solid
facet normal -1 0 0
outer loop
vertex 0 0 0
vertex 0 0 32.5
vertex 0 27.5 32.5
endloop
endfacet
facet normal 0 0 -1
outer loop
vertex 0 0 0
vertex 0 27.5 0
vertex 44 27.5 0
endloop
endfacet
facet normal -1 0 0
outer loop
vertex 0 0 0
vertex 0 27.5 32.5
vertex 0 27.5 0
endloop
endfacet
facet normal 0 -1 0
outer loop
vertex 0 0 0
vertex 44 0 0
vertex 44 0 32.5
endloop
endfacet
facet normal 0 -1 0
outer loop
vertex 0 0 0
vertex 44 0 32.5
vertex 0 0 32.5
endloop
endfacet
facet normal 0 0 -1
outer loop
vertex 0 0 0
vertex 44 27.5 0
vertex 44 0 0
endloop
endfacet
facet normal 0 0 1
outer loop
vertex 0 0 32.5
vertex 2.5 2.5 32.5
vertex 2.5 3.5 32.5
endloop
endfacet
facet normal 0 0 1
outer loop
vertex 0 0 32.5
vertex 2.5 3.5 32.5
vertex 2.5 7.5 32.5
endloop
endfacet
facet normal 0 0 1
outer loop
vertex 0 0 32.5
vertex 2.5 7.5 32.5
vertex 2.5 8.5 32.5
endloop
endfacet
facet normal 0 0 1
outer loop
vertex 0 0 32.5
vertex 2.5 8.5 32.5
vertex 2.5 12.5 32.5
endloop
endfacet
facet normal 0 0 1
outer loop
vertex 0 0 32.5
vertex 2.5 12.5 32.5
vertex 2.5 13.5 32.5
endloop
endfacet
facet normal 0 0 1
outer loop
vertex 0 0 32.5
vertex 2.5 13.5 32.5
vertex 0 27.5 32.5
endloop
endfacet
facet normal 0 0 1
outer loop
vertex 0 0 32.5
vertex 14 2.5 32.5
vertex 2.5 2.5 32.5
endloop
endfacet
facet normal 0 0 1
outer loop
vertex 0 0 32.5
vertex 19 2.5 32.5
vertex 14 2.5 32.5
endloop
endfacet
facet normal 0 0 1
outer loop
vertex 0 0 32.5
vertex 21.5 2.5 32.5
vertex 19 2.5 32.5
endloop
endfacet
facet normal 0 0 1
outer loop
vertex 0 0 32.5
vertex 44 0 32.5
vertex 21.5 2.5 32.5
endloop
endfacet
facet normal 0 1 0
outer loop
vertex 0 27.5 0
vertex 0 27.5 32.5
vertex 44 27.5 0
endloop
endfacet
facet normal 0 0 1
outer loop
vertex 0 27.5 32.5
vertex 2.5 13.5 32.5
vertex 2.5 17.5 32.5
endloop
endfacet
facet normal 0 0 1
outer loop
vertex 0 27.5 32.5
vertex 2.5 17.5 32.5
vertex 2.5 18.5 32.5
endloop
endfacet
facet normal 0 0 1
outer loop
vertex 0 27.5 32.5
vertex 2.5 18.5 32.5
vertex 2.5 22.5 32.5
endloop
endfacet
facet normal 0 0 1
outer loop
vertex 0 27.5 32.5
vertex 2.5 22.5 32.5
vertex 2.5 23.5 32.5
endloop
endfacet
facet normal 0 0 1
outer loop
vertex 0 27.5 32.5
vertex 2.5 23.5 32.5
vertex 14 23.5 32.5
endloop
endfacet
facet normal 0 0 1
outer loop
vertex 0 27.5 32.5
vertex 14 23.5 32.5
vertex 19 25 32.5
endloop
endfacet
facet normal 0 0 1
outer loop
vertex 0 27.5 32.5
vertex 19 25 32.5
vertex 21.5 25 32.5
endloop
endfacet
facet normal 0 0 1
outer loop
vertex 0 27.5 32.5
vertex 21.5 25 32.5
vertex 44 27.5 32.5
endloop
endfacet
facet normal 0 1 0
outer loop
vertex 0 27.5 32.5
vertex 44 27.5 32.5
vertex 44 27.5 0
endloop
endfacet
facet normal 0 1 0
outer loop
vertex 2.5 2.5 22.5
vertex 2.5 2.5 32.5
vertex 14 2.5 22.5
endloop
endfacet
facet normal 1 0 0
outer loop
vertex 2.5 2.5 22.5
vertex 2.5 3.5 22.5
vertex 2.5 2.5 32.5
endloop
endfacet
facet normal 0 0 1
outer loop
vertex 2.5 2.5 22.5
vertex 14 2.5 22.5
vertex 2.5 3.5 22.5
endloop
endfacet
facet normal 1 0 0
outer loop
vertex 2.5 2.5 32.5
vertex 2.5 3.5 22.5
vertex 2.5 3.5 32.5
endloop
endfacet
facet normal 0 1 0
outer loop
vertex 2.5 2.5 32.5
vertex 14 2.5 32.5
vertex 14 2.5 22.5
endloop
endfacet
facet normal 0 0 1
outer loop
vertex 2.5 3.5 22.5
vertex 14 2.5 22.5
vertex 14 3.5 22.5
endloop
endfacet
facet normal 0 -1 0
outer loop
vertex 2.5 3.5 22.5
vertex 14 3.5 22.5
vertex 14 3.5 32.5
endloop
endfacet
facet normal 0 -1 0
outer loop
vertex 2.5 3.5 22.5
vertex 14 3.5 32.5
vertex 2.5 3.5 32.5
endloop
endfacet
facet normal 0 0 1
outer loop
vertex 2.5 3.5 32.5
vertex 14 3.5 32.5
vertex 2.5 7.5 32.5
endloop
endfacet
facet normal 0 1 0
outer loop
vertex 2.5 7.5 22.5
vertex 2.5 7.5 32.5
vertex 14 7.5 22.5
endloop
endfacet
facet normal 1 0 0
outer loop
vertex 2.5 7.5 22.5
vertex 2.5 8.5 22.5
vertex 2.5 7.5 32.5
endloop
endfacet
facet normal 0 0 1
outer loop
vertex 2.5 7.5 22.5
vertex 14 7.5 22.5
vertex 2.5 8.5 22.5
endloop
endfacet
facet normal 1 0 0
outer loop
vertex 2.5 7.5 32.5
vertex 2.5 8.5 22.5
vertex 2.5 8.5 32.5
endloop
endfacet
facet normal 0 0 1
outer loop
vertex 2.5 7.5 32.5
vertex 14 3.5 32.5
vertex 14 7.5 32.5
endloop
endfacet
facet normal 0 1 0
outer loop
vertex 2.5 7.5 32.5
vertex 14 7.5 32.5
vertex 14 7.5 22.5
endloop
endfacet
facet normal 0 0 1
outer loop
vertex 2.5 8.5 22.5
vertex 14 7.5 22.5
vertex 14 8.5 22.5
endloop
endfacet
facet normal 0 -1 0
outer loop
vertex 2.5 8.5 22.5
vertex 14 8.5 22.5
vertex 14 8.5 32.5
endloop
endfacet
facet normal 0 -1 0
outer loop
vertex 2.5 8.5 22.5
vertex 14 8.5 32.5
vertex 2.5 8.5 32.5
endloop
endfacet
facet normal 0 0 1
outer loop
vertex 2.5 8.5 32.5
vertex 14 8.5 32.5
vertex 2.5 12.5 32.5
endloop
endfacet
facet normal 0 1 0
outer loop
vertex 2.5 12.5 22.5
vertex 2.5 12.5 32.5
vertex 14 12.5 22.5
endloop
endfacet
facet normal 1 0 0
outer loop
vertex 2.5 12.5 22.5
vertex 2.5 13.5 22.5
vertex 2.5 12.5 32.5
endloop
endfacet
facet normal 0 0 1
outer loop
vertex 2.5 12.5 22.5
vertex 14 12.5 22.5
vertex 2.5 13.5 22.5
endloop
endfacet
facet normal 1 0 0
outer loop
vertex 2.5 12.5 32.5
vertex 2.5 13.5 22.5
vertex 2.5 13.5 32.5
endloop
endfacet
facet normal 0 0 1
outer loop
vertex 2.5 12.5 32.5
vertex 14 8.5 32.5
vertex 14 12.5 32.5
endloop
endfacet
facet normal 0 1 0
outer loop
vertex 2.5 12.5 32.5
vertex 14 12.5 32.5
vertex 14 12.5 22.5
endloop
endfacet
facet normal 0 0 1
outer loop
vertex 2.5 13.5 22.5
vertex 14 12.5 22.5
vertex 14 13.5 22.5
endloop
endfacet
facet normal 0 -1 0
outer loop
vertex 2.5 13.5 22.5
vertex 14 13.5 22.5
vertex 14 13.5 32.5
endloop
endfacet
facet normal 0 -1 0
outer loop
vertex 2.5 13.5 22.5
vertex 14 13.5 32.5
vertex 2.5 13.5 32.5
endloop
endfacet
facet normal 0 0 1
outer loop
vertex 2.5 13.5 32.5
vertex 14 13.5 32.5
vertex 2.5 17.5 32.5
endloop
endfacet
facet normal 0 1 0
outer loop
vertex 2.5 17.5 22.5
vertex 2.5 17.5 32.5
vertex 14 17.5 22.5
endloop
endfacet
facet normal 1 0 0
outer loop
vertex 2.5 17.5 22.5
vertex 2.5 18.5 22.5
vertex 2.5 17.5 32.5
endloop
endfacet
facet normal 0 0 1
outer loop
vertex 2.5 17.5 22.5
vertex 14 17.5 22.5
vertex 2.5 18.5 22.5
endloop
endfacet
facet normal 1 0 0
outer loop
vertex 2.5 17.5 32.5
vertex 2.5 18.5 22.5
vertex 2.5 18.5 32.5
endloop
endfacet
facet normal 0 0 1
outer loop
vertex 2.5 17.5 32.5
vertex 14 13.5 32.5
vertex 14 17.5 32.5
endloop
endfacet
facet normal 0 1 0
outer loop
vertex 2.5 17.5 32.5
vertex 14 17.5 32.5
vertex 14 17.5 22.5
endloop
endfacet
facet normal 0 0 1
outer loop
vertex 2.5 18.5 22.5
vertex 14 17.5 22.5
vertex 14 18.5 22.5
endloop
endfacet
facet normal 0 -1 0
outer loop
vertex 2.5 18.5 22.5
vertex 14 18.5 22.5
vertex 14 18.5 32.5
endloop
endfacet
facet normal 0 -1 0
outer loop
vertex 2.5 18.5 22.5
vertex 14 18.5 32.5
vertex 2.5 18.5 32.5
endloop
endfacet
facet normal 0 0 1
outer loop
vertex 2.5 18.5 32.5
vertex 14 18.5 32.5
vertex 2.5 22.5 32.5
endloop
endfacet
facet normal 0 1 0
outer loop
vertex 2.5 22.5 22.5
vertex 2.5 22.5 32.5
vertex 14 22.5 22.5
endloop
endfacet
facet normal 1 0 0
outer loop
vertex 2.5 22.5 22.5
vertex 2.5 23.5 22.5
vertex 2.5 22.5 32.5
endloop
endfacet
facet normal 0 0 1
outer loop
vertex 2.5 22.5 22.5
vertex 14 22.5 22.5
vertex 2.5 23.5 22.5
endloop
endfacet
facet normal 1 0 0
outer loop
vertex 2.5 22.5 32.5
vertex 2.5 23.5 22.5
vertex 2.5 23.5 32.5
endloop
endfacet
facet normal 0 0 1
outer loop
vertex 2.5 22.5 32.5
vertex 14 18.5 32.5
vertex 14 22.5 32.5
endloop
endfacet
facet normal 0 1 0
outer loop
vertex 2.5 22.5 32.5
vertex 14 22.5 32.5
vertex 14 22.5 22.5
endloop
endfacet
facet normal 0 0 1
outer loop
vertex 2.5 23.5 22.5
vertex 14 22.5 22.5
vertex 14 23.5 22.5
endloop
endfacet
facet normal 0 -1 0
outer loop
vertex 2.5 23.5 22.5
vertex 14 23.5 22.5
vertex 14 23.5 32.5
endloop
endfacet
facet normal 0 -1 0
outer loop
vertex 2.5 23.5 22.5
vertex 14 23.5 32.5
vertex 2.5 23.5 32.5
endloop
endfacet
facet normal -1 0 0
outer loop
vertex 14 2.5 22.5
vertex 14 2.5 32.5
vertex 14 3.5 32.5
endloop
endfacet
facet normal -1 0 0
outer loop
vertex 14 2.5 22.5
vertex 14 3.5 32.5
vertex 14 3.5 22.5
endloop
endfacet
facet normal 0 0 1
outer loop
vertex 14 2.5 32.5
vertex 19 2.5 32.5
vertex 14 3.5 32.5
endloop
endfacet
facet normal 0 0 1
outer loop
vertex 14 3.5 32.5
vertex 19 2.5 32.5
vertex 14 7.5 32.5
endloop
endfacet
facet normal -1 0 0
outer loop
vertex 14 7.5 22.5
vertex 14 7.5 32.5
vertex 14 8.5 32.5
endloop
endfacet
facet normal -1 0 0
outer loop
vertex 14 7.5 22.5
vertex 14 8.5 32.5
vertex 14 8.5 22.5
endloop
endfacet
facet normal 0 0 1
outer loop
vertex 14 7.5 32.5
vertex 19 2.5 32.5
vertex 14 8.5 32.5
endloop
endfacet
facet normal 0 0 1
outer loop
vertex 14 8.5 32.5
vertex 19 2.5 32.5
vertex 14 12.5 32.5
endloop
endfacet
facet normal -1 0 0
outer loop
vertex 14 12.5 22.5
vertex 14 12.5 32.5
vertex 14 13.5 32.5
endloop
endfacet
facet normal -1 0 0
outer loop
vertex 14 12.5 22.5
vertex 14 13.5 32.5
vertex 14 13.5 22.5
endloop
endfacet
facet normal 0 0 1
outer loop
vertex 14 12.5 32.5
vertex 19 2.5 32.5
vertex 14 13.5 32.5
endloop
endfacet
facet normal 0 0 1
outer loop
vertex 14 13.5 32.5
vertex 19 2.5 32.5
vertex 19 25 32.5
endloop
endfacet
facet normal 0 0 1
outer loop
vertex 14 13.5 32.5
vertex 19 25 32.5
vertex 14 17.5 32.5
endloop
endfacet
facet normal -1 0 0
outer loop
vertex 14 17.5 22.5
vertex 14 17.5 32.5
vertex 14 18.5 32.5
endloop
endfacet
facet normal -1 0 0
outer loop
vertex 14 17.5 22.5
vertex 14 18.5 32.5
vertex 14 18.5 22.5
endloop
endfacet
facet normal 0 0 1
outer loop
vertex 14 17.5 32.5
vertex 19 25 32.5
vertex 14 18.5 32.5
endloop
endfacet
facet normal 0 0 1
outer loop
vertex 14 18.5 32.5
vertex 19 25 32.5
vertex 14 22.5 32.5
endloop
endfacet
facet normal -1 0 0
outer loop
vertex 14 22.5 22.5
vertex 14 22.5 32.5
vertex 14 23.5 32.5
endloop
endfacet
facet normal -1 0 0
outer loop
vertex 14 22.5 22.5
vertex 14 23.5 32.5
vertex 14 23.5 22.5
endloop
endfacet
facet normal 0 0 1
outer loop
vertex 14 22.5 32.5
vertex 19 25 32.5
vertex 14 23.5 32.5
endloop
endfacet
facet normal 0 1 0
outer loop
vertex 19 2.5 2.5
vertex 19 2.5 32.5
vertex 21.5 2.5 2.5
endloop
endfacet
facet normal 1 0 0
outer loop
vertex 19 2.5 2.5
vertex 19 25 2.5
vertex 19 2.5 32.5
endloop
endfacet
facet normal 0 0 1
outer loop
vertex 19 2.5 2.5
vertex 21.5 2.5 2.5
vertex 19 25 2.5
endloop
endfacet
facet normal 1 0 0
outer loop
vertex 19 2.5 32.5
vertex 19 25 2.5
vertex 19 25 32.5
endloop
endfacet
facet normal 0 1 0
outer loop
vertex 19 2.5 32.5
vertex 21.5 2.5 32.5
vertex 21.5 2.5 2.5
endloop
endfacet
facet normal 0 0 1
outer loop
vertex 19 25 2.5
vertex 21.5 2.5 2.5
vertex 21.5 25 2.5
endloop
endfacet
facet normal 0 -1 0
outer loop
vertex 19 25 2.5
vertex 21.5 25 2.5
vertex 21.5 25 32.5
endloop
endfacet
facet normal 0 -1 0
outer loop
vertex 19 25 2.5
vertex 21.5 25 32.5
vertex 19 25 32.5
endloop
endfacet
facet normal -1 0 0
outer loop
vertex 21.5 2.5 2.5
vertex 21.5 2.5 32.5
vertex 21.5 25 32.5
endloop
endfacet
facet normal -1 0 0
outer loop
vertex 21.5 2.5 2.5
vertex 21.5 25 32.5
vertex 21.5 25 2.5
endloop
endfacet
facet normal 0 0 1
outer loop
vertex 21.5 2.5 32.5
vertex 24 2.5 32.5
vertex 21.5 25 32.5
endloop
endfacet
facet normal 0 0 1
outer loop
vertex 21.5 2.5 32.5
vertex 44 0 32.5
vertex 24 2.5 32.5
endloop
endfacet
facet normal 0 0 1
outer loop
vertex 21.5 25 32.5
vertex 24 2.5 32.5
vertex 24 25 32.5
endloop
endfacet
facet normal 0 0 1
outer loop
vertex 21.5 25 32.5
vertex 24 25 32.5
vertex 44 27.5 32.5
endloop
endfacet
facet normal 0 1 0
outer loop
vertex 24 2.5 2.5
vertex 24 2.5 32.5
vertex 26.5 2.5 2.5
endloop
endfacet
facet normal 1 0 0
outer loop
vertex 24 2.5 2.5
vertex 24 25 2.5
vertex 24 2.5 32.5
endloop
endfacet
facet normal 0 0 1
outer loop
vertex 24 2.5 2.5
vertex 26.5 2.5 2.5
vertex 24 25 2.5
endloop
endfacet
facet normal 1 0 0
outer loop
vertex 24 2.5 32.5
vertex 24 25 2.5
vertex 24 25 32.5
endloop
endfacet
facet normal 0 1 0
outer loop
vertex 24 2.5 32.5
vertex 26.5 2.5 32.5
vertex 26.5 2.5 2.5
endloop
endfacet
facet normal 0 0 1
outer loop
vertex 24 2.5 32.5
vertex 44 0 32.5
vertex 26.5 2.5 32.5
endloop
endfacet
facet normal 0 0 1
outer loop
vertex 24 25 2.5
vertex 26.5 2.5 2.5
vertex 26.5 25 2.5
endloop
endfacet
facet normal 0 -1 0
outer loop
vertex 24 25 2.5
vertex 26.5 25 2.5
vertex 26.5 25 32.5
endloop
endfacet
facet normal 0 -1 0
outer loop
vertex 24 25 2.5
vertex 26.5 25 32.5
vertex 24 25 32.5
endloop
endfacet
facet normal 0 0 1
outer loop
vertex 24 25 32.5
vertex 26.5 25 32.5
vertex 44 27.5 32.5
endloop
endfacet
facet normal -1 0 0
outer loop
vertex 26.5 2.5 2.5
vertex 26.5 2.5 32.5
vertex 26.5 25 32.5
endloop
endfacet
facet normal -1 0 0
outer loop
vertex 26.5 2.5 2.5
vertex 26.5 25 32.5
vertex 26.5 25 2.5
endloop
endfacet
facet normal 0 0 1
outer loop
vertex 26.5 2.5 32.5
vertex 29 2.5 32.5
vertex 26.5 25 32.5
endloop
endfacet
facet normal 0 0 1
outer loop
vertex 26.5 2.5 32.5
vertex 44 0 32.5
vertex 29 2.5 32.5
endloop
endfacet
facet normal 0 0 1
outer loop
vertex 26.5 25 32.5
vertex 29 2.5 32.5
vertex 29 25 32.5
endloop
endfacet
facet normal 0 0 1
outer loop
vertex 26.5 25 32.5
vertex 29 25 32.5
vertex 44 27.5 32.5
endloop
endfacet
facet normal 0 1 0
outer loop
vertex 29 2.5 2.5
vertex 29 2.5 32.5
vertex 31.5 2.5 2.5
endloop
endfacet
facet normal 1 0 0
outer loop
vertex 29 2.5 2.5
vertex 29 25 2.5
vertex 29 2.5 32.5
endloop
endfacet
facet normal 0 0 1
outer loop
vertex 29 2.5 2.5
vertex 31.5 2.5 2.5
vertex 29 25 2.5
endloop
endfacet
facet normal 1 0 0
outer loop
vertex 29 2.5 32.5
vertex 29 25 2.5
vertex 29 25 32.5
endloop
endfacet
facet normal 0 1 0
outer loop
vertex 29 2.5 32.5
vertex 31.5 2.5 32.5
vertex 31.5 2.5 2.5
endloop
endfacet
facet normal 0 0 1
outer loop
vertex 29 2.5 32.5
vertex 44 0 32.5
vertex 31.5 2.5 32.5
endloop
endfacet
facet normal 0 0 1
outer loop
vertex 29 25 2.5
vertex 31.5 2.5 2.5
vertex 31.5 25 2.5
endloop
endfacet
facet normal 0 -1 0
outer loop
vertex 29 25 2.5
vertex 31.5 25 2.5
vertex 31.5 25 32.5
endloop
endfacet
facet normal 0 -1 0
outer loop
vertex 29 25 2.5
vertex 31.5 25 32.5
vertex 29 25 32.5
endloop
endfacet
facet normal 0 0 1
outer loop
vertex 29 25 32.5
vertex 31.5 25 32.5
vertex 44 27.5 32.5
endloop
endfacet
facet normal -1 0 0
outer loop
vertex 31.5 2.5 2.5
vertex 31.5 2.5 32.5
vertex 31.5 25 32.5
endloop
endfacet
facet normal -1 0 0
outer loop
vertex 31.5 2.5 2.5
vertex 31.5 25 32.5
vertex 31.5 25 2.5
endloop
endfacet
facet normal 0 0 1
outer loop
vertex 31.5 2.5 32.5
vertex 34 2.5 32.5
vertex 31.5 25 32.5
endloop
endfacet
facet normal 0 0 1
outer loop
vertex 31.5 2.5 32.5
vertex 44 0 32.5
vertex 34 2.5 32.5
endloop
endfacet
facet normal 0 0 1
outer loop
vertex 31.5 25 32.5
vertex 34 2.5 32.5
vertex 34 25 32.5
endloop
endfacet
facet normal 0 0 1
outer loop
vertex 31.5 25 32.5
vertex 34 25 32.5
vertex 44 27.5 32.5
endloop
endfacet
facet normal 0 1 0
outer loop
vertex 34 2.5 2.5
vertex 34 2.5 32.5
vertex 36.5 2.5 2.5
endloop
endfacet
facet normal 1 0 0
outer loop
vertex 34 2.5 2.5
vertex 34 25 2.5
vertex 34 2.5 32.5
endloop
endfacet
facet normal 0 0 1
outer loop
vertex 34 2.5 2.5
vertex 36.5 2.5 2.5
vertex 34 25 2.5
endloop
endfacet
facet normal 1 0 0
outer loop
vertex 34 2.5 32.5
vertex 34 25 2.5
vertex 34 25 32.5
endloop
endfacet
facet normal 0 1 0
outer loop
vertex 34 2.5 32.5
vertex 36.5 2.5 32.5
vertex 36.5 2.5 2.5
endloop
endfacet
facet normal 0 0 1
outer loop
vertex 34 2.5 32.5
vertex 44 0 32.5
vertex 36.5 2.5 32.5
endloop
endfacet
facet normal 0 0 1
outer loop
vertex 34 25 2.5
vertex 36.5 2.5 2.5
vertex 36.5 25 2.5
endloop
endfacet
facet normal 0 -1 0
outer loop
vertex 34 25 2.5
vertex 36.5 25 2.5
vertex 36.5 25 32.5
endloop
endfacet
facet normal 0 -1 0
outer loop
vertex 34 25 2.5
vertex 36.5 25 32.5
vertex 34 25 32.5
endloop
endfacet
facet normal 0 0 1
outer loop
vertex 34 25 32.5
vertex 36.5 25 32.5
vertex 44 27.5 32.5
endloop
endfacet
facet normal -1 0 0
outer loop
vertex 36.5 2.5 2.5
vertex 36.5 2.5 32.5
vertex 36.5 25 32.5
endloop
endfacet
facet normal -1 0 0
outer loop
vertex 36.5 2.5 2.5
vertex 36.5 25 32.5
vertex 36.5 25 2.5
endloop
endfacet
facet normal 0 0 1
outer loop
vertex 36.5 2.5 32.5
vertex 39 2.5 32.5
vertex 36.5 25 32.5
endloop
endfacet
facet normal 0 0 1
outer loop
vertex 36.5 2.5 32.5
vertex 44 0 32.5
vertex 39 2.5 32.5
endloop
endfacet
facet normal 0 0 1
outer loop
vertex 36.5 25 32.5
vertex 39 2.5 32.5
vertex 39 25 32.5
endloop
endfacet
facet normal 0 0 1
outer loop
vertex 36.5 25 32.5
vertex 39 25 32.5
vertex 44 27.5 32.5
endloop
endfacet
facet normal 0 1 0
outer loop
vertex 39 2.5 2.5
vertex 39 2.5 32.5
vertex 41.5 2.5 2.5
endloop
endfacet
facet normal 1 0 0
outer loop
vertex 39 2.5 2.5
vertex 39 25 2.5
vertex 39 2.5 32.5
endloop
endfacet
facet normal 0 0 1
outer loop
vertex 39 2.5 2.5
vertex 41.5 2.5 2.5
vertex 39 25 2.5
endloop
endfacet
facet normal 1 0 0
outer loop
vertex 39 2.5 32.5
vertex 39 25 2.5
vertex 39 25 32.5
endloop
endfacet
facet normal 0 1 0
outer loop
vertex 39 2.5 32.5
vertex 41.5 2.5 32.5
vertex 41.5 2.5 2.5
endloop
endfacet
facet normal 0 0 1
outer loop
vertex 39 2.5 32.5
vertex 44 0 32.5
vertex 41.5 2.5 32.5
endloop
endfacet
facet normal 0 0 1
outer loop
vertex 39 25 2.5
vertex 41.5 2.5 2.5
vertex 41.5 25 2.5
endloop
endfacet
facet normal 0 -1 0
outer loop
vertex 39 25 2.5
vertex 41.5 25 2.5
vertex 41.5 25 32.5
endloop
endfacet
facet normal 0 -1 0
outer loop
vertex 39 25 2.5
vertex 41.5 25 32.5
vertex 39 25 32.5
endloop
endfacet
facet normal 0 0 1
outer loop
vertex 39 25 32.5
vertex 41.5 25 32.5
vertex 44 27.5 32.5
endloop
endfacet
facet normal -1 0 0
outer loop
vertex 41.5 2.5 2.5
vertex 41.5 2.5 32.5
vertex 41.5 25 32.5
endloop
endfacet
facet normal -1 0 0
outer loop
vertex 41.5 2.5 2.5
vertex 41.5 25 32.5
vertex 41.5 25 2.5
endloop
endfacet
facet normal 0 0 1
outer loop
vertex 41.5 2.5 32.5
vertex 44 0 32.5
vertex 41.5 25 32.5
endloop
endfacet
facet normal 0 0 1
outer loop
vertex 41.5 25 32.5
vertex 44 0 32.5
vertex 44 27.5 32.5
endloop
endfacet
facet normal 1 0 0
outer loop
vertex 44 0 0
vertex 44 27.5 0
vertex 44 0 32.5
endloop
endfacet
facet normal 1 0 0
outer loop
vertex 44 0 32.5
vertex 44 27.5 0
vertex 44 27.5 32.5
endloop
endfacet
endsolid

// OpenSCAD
// stand for NVME and
// MicroSD cards
// 11.10.2025 Sebastian Weigl
 
// set the fregment sizes
$fn = $preview ? 48 : 64;

// vars
border=2.5;

fir_box_width=44;
fir_box_depth=27.5;
fir_box_height=32.5;

sec_box_width=2.5;
sec_box_depth=22.5;
sec_box_height=30;

thi_box_width=11.5;
thi_box_depth=1;
thi_box_height=10;

// object
difference() {
cube([fir_box_width,fir_box_depth,fir_box_height],false);
translate([fir_box_width-5,border,border])
#cube([sec_box_width,sec_box_depth,sec_box_height],false);
translate([fir_box_width-10,border,border])
#cube([sec_box_width,sec_box_depth,sec_box_height],false);
translate([fir_box_width-15,border,border])
#cube([sec_box_width,sec_box_depth,sec_box_height],false);
translate([fir_box_width-20,border,border])
#cube([sec_box_width,sec_box_depth,sec_box_height],false);
translate([fir_box_width-25,border,border])
#cube([sec_box_width,sec_box_depth,sec_box_height],false);

translate([border,border,fir_box_height-thi_box_height])
#cube([thi_box_width,thi_box_depth,thi_box_height],false);
translate([border,border+5,fir_box_height-thi_box_height])
#cube([thi_box_width,thi_box_depth,thi_box_height],false);
translate([border,border+10,fir_box_height-thi_box_height])
#cube([thi_box_width,thi_box_depth,thi_box_height],false);
translate([border,border+15,fir_box_height-thi_box_height])
#cube([thi_box_width,thi_box_depth,thi_box_height],false);
translate([border,border+20,fir_box_height-thi_box_height])
#cube([thi_box_width,thi_box_depth,thi_box_height],false);
}
